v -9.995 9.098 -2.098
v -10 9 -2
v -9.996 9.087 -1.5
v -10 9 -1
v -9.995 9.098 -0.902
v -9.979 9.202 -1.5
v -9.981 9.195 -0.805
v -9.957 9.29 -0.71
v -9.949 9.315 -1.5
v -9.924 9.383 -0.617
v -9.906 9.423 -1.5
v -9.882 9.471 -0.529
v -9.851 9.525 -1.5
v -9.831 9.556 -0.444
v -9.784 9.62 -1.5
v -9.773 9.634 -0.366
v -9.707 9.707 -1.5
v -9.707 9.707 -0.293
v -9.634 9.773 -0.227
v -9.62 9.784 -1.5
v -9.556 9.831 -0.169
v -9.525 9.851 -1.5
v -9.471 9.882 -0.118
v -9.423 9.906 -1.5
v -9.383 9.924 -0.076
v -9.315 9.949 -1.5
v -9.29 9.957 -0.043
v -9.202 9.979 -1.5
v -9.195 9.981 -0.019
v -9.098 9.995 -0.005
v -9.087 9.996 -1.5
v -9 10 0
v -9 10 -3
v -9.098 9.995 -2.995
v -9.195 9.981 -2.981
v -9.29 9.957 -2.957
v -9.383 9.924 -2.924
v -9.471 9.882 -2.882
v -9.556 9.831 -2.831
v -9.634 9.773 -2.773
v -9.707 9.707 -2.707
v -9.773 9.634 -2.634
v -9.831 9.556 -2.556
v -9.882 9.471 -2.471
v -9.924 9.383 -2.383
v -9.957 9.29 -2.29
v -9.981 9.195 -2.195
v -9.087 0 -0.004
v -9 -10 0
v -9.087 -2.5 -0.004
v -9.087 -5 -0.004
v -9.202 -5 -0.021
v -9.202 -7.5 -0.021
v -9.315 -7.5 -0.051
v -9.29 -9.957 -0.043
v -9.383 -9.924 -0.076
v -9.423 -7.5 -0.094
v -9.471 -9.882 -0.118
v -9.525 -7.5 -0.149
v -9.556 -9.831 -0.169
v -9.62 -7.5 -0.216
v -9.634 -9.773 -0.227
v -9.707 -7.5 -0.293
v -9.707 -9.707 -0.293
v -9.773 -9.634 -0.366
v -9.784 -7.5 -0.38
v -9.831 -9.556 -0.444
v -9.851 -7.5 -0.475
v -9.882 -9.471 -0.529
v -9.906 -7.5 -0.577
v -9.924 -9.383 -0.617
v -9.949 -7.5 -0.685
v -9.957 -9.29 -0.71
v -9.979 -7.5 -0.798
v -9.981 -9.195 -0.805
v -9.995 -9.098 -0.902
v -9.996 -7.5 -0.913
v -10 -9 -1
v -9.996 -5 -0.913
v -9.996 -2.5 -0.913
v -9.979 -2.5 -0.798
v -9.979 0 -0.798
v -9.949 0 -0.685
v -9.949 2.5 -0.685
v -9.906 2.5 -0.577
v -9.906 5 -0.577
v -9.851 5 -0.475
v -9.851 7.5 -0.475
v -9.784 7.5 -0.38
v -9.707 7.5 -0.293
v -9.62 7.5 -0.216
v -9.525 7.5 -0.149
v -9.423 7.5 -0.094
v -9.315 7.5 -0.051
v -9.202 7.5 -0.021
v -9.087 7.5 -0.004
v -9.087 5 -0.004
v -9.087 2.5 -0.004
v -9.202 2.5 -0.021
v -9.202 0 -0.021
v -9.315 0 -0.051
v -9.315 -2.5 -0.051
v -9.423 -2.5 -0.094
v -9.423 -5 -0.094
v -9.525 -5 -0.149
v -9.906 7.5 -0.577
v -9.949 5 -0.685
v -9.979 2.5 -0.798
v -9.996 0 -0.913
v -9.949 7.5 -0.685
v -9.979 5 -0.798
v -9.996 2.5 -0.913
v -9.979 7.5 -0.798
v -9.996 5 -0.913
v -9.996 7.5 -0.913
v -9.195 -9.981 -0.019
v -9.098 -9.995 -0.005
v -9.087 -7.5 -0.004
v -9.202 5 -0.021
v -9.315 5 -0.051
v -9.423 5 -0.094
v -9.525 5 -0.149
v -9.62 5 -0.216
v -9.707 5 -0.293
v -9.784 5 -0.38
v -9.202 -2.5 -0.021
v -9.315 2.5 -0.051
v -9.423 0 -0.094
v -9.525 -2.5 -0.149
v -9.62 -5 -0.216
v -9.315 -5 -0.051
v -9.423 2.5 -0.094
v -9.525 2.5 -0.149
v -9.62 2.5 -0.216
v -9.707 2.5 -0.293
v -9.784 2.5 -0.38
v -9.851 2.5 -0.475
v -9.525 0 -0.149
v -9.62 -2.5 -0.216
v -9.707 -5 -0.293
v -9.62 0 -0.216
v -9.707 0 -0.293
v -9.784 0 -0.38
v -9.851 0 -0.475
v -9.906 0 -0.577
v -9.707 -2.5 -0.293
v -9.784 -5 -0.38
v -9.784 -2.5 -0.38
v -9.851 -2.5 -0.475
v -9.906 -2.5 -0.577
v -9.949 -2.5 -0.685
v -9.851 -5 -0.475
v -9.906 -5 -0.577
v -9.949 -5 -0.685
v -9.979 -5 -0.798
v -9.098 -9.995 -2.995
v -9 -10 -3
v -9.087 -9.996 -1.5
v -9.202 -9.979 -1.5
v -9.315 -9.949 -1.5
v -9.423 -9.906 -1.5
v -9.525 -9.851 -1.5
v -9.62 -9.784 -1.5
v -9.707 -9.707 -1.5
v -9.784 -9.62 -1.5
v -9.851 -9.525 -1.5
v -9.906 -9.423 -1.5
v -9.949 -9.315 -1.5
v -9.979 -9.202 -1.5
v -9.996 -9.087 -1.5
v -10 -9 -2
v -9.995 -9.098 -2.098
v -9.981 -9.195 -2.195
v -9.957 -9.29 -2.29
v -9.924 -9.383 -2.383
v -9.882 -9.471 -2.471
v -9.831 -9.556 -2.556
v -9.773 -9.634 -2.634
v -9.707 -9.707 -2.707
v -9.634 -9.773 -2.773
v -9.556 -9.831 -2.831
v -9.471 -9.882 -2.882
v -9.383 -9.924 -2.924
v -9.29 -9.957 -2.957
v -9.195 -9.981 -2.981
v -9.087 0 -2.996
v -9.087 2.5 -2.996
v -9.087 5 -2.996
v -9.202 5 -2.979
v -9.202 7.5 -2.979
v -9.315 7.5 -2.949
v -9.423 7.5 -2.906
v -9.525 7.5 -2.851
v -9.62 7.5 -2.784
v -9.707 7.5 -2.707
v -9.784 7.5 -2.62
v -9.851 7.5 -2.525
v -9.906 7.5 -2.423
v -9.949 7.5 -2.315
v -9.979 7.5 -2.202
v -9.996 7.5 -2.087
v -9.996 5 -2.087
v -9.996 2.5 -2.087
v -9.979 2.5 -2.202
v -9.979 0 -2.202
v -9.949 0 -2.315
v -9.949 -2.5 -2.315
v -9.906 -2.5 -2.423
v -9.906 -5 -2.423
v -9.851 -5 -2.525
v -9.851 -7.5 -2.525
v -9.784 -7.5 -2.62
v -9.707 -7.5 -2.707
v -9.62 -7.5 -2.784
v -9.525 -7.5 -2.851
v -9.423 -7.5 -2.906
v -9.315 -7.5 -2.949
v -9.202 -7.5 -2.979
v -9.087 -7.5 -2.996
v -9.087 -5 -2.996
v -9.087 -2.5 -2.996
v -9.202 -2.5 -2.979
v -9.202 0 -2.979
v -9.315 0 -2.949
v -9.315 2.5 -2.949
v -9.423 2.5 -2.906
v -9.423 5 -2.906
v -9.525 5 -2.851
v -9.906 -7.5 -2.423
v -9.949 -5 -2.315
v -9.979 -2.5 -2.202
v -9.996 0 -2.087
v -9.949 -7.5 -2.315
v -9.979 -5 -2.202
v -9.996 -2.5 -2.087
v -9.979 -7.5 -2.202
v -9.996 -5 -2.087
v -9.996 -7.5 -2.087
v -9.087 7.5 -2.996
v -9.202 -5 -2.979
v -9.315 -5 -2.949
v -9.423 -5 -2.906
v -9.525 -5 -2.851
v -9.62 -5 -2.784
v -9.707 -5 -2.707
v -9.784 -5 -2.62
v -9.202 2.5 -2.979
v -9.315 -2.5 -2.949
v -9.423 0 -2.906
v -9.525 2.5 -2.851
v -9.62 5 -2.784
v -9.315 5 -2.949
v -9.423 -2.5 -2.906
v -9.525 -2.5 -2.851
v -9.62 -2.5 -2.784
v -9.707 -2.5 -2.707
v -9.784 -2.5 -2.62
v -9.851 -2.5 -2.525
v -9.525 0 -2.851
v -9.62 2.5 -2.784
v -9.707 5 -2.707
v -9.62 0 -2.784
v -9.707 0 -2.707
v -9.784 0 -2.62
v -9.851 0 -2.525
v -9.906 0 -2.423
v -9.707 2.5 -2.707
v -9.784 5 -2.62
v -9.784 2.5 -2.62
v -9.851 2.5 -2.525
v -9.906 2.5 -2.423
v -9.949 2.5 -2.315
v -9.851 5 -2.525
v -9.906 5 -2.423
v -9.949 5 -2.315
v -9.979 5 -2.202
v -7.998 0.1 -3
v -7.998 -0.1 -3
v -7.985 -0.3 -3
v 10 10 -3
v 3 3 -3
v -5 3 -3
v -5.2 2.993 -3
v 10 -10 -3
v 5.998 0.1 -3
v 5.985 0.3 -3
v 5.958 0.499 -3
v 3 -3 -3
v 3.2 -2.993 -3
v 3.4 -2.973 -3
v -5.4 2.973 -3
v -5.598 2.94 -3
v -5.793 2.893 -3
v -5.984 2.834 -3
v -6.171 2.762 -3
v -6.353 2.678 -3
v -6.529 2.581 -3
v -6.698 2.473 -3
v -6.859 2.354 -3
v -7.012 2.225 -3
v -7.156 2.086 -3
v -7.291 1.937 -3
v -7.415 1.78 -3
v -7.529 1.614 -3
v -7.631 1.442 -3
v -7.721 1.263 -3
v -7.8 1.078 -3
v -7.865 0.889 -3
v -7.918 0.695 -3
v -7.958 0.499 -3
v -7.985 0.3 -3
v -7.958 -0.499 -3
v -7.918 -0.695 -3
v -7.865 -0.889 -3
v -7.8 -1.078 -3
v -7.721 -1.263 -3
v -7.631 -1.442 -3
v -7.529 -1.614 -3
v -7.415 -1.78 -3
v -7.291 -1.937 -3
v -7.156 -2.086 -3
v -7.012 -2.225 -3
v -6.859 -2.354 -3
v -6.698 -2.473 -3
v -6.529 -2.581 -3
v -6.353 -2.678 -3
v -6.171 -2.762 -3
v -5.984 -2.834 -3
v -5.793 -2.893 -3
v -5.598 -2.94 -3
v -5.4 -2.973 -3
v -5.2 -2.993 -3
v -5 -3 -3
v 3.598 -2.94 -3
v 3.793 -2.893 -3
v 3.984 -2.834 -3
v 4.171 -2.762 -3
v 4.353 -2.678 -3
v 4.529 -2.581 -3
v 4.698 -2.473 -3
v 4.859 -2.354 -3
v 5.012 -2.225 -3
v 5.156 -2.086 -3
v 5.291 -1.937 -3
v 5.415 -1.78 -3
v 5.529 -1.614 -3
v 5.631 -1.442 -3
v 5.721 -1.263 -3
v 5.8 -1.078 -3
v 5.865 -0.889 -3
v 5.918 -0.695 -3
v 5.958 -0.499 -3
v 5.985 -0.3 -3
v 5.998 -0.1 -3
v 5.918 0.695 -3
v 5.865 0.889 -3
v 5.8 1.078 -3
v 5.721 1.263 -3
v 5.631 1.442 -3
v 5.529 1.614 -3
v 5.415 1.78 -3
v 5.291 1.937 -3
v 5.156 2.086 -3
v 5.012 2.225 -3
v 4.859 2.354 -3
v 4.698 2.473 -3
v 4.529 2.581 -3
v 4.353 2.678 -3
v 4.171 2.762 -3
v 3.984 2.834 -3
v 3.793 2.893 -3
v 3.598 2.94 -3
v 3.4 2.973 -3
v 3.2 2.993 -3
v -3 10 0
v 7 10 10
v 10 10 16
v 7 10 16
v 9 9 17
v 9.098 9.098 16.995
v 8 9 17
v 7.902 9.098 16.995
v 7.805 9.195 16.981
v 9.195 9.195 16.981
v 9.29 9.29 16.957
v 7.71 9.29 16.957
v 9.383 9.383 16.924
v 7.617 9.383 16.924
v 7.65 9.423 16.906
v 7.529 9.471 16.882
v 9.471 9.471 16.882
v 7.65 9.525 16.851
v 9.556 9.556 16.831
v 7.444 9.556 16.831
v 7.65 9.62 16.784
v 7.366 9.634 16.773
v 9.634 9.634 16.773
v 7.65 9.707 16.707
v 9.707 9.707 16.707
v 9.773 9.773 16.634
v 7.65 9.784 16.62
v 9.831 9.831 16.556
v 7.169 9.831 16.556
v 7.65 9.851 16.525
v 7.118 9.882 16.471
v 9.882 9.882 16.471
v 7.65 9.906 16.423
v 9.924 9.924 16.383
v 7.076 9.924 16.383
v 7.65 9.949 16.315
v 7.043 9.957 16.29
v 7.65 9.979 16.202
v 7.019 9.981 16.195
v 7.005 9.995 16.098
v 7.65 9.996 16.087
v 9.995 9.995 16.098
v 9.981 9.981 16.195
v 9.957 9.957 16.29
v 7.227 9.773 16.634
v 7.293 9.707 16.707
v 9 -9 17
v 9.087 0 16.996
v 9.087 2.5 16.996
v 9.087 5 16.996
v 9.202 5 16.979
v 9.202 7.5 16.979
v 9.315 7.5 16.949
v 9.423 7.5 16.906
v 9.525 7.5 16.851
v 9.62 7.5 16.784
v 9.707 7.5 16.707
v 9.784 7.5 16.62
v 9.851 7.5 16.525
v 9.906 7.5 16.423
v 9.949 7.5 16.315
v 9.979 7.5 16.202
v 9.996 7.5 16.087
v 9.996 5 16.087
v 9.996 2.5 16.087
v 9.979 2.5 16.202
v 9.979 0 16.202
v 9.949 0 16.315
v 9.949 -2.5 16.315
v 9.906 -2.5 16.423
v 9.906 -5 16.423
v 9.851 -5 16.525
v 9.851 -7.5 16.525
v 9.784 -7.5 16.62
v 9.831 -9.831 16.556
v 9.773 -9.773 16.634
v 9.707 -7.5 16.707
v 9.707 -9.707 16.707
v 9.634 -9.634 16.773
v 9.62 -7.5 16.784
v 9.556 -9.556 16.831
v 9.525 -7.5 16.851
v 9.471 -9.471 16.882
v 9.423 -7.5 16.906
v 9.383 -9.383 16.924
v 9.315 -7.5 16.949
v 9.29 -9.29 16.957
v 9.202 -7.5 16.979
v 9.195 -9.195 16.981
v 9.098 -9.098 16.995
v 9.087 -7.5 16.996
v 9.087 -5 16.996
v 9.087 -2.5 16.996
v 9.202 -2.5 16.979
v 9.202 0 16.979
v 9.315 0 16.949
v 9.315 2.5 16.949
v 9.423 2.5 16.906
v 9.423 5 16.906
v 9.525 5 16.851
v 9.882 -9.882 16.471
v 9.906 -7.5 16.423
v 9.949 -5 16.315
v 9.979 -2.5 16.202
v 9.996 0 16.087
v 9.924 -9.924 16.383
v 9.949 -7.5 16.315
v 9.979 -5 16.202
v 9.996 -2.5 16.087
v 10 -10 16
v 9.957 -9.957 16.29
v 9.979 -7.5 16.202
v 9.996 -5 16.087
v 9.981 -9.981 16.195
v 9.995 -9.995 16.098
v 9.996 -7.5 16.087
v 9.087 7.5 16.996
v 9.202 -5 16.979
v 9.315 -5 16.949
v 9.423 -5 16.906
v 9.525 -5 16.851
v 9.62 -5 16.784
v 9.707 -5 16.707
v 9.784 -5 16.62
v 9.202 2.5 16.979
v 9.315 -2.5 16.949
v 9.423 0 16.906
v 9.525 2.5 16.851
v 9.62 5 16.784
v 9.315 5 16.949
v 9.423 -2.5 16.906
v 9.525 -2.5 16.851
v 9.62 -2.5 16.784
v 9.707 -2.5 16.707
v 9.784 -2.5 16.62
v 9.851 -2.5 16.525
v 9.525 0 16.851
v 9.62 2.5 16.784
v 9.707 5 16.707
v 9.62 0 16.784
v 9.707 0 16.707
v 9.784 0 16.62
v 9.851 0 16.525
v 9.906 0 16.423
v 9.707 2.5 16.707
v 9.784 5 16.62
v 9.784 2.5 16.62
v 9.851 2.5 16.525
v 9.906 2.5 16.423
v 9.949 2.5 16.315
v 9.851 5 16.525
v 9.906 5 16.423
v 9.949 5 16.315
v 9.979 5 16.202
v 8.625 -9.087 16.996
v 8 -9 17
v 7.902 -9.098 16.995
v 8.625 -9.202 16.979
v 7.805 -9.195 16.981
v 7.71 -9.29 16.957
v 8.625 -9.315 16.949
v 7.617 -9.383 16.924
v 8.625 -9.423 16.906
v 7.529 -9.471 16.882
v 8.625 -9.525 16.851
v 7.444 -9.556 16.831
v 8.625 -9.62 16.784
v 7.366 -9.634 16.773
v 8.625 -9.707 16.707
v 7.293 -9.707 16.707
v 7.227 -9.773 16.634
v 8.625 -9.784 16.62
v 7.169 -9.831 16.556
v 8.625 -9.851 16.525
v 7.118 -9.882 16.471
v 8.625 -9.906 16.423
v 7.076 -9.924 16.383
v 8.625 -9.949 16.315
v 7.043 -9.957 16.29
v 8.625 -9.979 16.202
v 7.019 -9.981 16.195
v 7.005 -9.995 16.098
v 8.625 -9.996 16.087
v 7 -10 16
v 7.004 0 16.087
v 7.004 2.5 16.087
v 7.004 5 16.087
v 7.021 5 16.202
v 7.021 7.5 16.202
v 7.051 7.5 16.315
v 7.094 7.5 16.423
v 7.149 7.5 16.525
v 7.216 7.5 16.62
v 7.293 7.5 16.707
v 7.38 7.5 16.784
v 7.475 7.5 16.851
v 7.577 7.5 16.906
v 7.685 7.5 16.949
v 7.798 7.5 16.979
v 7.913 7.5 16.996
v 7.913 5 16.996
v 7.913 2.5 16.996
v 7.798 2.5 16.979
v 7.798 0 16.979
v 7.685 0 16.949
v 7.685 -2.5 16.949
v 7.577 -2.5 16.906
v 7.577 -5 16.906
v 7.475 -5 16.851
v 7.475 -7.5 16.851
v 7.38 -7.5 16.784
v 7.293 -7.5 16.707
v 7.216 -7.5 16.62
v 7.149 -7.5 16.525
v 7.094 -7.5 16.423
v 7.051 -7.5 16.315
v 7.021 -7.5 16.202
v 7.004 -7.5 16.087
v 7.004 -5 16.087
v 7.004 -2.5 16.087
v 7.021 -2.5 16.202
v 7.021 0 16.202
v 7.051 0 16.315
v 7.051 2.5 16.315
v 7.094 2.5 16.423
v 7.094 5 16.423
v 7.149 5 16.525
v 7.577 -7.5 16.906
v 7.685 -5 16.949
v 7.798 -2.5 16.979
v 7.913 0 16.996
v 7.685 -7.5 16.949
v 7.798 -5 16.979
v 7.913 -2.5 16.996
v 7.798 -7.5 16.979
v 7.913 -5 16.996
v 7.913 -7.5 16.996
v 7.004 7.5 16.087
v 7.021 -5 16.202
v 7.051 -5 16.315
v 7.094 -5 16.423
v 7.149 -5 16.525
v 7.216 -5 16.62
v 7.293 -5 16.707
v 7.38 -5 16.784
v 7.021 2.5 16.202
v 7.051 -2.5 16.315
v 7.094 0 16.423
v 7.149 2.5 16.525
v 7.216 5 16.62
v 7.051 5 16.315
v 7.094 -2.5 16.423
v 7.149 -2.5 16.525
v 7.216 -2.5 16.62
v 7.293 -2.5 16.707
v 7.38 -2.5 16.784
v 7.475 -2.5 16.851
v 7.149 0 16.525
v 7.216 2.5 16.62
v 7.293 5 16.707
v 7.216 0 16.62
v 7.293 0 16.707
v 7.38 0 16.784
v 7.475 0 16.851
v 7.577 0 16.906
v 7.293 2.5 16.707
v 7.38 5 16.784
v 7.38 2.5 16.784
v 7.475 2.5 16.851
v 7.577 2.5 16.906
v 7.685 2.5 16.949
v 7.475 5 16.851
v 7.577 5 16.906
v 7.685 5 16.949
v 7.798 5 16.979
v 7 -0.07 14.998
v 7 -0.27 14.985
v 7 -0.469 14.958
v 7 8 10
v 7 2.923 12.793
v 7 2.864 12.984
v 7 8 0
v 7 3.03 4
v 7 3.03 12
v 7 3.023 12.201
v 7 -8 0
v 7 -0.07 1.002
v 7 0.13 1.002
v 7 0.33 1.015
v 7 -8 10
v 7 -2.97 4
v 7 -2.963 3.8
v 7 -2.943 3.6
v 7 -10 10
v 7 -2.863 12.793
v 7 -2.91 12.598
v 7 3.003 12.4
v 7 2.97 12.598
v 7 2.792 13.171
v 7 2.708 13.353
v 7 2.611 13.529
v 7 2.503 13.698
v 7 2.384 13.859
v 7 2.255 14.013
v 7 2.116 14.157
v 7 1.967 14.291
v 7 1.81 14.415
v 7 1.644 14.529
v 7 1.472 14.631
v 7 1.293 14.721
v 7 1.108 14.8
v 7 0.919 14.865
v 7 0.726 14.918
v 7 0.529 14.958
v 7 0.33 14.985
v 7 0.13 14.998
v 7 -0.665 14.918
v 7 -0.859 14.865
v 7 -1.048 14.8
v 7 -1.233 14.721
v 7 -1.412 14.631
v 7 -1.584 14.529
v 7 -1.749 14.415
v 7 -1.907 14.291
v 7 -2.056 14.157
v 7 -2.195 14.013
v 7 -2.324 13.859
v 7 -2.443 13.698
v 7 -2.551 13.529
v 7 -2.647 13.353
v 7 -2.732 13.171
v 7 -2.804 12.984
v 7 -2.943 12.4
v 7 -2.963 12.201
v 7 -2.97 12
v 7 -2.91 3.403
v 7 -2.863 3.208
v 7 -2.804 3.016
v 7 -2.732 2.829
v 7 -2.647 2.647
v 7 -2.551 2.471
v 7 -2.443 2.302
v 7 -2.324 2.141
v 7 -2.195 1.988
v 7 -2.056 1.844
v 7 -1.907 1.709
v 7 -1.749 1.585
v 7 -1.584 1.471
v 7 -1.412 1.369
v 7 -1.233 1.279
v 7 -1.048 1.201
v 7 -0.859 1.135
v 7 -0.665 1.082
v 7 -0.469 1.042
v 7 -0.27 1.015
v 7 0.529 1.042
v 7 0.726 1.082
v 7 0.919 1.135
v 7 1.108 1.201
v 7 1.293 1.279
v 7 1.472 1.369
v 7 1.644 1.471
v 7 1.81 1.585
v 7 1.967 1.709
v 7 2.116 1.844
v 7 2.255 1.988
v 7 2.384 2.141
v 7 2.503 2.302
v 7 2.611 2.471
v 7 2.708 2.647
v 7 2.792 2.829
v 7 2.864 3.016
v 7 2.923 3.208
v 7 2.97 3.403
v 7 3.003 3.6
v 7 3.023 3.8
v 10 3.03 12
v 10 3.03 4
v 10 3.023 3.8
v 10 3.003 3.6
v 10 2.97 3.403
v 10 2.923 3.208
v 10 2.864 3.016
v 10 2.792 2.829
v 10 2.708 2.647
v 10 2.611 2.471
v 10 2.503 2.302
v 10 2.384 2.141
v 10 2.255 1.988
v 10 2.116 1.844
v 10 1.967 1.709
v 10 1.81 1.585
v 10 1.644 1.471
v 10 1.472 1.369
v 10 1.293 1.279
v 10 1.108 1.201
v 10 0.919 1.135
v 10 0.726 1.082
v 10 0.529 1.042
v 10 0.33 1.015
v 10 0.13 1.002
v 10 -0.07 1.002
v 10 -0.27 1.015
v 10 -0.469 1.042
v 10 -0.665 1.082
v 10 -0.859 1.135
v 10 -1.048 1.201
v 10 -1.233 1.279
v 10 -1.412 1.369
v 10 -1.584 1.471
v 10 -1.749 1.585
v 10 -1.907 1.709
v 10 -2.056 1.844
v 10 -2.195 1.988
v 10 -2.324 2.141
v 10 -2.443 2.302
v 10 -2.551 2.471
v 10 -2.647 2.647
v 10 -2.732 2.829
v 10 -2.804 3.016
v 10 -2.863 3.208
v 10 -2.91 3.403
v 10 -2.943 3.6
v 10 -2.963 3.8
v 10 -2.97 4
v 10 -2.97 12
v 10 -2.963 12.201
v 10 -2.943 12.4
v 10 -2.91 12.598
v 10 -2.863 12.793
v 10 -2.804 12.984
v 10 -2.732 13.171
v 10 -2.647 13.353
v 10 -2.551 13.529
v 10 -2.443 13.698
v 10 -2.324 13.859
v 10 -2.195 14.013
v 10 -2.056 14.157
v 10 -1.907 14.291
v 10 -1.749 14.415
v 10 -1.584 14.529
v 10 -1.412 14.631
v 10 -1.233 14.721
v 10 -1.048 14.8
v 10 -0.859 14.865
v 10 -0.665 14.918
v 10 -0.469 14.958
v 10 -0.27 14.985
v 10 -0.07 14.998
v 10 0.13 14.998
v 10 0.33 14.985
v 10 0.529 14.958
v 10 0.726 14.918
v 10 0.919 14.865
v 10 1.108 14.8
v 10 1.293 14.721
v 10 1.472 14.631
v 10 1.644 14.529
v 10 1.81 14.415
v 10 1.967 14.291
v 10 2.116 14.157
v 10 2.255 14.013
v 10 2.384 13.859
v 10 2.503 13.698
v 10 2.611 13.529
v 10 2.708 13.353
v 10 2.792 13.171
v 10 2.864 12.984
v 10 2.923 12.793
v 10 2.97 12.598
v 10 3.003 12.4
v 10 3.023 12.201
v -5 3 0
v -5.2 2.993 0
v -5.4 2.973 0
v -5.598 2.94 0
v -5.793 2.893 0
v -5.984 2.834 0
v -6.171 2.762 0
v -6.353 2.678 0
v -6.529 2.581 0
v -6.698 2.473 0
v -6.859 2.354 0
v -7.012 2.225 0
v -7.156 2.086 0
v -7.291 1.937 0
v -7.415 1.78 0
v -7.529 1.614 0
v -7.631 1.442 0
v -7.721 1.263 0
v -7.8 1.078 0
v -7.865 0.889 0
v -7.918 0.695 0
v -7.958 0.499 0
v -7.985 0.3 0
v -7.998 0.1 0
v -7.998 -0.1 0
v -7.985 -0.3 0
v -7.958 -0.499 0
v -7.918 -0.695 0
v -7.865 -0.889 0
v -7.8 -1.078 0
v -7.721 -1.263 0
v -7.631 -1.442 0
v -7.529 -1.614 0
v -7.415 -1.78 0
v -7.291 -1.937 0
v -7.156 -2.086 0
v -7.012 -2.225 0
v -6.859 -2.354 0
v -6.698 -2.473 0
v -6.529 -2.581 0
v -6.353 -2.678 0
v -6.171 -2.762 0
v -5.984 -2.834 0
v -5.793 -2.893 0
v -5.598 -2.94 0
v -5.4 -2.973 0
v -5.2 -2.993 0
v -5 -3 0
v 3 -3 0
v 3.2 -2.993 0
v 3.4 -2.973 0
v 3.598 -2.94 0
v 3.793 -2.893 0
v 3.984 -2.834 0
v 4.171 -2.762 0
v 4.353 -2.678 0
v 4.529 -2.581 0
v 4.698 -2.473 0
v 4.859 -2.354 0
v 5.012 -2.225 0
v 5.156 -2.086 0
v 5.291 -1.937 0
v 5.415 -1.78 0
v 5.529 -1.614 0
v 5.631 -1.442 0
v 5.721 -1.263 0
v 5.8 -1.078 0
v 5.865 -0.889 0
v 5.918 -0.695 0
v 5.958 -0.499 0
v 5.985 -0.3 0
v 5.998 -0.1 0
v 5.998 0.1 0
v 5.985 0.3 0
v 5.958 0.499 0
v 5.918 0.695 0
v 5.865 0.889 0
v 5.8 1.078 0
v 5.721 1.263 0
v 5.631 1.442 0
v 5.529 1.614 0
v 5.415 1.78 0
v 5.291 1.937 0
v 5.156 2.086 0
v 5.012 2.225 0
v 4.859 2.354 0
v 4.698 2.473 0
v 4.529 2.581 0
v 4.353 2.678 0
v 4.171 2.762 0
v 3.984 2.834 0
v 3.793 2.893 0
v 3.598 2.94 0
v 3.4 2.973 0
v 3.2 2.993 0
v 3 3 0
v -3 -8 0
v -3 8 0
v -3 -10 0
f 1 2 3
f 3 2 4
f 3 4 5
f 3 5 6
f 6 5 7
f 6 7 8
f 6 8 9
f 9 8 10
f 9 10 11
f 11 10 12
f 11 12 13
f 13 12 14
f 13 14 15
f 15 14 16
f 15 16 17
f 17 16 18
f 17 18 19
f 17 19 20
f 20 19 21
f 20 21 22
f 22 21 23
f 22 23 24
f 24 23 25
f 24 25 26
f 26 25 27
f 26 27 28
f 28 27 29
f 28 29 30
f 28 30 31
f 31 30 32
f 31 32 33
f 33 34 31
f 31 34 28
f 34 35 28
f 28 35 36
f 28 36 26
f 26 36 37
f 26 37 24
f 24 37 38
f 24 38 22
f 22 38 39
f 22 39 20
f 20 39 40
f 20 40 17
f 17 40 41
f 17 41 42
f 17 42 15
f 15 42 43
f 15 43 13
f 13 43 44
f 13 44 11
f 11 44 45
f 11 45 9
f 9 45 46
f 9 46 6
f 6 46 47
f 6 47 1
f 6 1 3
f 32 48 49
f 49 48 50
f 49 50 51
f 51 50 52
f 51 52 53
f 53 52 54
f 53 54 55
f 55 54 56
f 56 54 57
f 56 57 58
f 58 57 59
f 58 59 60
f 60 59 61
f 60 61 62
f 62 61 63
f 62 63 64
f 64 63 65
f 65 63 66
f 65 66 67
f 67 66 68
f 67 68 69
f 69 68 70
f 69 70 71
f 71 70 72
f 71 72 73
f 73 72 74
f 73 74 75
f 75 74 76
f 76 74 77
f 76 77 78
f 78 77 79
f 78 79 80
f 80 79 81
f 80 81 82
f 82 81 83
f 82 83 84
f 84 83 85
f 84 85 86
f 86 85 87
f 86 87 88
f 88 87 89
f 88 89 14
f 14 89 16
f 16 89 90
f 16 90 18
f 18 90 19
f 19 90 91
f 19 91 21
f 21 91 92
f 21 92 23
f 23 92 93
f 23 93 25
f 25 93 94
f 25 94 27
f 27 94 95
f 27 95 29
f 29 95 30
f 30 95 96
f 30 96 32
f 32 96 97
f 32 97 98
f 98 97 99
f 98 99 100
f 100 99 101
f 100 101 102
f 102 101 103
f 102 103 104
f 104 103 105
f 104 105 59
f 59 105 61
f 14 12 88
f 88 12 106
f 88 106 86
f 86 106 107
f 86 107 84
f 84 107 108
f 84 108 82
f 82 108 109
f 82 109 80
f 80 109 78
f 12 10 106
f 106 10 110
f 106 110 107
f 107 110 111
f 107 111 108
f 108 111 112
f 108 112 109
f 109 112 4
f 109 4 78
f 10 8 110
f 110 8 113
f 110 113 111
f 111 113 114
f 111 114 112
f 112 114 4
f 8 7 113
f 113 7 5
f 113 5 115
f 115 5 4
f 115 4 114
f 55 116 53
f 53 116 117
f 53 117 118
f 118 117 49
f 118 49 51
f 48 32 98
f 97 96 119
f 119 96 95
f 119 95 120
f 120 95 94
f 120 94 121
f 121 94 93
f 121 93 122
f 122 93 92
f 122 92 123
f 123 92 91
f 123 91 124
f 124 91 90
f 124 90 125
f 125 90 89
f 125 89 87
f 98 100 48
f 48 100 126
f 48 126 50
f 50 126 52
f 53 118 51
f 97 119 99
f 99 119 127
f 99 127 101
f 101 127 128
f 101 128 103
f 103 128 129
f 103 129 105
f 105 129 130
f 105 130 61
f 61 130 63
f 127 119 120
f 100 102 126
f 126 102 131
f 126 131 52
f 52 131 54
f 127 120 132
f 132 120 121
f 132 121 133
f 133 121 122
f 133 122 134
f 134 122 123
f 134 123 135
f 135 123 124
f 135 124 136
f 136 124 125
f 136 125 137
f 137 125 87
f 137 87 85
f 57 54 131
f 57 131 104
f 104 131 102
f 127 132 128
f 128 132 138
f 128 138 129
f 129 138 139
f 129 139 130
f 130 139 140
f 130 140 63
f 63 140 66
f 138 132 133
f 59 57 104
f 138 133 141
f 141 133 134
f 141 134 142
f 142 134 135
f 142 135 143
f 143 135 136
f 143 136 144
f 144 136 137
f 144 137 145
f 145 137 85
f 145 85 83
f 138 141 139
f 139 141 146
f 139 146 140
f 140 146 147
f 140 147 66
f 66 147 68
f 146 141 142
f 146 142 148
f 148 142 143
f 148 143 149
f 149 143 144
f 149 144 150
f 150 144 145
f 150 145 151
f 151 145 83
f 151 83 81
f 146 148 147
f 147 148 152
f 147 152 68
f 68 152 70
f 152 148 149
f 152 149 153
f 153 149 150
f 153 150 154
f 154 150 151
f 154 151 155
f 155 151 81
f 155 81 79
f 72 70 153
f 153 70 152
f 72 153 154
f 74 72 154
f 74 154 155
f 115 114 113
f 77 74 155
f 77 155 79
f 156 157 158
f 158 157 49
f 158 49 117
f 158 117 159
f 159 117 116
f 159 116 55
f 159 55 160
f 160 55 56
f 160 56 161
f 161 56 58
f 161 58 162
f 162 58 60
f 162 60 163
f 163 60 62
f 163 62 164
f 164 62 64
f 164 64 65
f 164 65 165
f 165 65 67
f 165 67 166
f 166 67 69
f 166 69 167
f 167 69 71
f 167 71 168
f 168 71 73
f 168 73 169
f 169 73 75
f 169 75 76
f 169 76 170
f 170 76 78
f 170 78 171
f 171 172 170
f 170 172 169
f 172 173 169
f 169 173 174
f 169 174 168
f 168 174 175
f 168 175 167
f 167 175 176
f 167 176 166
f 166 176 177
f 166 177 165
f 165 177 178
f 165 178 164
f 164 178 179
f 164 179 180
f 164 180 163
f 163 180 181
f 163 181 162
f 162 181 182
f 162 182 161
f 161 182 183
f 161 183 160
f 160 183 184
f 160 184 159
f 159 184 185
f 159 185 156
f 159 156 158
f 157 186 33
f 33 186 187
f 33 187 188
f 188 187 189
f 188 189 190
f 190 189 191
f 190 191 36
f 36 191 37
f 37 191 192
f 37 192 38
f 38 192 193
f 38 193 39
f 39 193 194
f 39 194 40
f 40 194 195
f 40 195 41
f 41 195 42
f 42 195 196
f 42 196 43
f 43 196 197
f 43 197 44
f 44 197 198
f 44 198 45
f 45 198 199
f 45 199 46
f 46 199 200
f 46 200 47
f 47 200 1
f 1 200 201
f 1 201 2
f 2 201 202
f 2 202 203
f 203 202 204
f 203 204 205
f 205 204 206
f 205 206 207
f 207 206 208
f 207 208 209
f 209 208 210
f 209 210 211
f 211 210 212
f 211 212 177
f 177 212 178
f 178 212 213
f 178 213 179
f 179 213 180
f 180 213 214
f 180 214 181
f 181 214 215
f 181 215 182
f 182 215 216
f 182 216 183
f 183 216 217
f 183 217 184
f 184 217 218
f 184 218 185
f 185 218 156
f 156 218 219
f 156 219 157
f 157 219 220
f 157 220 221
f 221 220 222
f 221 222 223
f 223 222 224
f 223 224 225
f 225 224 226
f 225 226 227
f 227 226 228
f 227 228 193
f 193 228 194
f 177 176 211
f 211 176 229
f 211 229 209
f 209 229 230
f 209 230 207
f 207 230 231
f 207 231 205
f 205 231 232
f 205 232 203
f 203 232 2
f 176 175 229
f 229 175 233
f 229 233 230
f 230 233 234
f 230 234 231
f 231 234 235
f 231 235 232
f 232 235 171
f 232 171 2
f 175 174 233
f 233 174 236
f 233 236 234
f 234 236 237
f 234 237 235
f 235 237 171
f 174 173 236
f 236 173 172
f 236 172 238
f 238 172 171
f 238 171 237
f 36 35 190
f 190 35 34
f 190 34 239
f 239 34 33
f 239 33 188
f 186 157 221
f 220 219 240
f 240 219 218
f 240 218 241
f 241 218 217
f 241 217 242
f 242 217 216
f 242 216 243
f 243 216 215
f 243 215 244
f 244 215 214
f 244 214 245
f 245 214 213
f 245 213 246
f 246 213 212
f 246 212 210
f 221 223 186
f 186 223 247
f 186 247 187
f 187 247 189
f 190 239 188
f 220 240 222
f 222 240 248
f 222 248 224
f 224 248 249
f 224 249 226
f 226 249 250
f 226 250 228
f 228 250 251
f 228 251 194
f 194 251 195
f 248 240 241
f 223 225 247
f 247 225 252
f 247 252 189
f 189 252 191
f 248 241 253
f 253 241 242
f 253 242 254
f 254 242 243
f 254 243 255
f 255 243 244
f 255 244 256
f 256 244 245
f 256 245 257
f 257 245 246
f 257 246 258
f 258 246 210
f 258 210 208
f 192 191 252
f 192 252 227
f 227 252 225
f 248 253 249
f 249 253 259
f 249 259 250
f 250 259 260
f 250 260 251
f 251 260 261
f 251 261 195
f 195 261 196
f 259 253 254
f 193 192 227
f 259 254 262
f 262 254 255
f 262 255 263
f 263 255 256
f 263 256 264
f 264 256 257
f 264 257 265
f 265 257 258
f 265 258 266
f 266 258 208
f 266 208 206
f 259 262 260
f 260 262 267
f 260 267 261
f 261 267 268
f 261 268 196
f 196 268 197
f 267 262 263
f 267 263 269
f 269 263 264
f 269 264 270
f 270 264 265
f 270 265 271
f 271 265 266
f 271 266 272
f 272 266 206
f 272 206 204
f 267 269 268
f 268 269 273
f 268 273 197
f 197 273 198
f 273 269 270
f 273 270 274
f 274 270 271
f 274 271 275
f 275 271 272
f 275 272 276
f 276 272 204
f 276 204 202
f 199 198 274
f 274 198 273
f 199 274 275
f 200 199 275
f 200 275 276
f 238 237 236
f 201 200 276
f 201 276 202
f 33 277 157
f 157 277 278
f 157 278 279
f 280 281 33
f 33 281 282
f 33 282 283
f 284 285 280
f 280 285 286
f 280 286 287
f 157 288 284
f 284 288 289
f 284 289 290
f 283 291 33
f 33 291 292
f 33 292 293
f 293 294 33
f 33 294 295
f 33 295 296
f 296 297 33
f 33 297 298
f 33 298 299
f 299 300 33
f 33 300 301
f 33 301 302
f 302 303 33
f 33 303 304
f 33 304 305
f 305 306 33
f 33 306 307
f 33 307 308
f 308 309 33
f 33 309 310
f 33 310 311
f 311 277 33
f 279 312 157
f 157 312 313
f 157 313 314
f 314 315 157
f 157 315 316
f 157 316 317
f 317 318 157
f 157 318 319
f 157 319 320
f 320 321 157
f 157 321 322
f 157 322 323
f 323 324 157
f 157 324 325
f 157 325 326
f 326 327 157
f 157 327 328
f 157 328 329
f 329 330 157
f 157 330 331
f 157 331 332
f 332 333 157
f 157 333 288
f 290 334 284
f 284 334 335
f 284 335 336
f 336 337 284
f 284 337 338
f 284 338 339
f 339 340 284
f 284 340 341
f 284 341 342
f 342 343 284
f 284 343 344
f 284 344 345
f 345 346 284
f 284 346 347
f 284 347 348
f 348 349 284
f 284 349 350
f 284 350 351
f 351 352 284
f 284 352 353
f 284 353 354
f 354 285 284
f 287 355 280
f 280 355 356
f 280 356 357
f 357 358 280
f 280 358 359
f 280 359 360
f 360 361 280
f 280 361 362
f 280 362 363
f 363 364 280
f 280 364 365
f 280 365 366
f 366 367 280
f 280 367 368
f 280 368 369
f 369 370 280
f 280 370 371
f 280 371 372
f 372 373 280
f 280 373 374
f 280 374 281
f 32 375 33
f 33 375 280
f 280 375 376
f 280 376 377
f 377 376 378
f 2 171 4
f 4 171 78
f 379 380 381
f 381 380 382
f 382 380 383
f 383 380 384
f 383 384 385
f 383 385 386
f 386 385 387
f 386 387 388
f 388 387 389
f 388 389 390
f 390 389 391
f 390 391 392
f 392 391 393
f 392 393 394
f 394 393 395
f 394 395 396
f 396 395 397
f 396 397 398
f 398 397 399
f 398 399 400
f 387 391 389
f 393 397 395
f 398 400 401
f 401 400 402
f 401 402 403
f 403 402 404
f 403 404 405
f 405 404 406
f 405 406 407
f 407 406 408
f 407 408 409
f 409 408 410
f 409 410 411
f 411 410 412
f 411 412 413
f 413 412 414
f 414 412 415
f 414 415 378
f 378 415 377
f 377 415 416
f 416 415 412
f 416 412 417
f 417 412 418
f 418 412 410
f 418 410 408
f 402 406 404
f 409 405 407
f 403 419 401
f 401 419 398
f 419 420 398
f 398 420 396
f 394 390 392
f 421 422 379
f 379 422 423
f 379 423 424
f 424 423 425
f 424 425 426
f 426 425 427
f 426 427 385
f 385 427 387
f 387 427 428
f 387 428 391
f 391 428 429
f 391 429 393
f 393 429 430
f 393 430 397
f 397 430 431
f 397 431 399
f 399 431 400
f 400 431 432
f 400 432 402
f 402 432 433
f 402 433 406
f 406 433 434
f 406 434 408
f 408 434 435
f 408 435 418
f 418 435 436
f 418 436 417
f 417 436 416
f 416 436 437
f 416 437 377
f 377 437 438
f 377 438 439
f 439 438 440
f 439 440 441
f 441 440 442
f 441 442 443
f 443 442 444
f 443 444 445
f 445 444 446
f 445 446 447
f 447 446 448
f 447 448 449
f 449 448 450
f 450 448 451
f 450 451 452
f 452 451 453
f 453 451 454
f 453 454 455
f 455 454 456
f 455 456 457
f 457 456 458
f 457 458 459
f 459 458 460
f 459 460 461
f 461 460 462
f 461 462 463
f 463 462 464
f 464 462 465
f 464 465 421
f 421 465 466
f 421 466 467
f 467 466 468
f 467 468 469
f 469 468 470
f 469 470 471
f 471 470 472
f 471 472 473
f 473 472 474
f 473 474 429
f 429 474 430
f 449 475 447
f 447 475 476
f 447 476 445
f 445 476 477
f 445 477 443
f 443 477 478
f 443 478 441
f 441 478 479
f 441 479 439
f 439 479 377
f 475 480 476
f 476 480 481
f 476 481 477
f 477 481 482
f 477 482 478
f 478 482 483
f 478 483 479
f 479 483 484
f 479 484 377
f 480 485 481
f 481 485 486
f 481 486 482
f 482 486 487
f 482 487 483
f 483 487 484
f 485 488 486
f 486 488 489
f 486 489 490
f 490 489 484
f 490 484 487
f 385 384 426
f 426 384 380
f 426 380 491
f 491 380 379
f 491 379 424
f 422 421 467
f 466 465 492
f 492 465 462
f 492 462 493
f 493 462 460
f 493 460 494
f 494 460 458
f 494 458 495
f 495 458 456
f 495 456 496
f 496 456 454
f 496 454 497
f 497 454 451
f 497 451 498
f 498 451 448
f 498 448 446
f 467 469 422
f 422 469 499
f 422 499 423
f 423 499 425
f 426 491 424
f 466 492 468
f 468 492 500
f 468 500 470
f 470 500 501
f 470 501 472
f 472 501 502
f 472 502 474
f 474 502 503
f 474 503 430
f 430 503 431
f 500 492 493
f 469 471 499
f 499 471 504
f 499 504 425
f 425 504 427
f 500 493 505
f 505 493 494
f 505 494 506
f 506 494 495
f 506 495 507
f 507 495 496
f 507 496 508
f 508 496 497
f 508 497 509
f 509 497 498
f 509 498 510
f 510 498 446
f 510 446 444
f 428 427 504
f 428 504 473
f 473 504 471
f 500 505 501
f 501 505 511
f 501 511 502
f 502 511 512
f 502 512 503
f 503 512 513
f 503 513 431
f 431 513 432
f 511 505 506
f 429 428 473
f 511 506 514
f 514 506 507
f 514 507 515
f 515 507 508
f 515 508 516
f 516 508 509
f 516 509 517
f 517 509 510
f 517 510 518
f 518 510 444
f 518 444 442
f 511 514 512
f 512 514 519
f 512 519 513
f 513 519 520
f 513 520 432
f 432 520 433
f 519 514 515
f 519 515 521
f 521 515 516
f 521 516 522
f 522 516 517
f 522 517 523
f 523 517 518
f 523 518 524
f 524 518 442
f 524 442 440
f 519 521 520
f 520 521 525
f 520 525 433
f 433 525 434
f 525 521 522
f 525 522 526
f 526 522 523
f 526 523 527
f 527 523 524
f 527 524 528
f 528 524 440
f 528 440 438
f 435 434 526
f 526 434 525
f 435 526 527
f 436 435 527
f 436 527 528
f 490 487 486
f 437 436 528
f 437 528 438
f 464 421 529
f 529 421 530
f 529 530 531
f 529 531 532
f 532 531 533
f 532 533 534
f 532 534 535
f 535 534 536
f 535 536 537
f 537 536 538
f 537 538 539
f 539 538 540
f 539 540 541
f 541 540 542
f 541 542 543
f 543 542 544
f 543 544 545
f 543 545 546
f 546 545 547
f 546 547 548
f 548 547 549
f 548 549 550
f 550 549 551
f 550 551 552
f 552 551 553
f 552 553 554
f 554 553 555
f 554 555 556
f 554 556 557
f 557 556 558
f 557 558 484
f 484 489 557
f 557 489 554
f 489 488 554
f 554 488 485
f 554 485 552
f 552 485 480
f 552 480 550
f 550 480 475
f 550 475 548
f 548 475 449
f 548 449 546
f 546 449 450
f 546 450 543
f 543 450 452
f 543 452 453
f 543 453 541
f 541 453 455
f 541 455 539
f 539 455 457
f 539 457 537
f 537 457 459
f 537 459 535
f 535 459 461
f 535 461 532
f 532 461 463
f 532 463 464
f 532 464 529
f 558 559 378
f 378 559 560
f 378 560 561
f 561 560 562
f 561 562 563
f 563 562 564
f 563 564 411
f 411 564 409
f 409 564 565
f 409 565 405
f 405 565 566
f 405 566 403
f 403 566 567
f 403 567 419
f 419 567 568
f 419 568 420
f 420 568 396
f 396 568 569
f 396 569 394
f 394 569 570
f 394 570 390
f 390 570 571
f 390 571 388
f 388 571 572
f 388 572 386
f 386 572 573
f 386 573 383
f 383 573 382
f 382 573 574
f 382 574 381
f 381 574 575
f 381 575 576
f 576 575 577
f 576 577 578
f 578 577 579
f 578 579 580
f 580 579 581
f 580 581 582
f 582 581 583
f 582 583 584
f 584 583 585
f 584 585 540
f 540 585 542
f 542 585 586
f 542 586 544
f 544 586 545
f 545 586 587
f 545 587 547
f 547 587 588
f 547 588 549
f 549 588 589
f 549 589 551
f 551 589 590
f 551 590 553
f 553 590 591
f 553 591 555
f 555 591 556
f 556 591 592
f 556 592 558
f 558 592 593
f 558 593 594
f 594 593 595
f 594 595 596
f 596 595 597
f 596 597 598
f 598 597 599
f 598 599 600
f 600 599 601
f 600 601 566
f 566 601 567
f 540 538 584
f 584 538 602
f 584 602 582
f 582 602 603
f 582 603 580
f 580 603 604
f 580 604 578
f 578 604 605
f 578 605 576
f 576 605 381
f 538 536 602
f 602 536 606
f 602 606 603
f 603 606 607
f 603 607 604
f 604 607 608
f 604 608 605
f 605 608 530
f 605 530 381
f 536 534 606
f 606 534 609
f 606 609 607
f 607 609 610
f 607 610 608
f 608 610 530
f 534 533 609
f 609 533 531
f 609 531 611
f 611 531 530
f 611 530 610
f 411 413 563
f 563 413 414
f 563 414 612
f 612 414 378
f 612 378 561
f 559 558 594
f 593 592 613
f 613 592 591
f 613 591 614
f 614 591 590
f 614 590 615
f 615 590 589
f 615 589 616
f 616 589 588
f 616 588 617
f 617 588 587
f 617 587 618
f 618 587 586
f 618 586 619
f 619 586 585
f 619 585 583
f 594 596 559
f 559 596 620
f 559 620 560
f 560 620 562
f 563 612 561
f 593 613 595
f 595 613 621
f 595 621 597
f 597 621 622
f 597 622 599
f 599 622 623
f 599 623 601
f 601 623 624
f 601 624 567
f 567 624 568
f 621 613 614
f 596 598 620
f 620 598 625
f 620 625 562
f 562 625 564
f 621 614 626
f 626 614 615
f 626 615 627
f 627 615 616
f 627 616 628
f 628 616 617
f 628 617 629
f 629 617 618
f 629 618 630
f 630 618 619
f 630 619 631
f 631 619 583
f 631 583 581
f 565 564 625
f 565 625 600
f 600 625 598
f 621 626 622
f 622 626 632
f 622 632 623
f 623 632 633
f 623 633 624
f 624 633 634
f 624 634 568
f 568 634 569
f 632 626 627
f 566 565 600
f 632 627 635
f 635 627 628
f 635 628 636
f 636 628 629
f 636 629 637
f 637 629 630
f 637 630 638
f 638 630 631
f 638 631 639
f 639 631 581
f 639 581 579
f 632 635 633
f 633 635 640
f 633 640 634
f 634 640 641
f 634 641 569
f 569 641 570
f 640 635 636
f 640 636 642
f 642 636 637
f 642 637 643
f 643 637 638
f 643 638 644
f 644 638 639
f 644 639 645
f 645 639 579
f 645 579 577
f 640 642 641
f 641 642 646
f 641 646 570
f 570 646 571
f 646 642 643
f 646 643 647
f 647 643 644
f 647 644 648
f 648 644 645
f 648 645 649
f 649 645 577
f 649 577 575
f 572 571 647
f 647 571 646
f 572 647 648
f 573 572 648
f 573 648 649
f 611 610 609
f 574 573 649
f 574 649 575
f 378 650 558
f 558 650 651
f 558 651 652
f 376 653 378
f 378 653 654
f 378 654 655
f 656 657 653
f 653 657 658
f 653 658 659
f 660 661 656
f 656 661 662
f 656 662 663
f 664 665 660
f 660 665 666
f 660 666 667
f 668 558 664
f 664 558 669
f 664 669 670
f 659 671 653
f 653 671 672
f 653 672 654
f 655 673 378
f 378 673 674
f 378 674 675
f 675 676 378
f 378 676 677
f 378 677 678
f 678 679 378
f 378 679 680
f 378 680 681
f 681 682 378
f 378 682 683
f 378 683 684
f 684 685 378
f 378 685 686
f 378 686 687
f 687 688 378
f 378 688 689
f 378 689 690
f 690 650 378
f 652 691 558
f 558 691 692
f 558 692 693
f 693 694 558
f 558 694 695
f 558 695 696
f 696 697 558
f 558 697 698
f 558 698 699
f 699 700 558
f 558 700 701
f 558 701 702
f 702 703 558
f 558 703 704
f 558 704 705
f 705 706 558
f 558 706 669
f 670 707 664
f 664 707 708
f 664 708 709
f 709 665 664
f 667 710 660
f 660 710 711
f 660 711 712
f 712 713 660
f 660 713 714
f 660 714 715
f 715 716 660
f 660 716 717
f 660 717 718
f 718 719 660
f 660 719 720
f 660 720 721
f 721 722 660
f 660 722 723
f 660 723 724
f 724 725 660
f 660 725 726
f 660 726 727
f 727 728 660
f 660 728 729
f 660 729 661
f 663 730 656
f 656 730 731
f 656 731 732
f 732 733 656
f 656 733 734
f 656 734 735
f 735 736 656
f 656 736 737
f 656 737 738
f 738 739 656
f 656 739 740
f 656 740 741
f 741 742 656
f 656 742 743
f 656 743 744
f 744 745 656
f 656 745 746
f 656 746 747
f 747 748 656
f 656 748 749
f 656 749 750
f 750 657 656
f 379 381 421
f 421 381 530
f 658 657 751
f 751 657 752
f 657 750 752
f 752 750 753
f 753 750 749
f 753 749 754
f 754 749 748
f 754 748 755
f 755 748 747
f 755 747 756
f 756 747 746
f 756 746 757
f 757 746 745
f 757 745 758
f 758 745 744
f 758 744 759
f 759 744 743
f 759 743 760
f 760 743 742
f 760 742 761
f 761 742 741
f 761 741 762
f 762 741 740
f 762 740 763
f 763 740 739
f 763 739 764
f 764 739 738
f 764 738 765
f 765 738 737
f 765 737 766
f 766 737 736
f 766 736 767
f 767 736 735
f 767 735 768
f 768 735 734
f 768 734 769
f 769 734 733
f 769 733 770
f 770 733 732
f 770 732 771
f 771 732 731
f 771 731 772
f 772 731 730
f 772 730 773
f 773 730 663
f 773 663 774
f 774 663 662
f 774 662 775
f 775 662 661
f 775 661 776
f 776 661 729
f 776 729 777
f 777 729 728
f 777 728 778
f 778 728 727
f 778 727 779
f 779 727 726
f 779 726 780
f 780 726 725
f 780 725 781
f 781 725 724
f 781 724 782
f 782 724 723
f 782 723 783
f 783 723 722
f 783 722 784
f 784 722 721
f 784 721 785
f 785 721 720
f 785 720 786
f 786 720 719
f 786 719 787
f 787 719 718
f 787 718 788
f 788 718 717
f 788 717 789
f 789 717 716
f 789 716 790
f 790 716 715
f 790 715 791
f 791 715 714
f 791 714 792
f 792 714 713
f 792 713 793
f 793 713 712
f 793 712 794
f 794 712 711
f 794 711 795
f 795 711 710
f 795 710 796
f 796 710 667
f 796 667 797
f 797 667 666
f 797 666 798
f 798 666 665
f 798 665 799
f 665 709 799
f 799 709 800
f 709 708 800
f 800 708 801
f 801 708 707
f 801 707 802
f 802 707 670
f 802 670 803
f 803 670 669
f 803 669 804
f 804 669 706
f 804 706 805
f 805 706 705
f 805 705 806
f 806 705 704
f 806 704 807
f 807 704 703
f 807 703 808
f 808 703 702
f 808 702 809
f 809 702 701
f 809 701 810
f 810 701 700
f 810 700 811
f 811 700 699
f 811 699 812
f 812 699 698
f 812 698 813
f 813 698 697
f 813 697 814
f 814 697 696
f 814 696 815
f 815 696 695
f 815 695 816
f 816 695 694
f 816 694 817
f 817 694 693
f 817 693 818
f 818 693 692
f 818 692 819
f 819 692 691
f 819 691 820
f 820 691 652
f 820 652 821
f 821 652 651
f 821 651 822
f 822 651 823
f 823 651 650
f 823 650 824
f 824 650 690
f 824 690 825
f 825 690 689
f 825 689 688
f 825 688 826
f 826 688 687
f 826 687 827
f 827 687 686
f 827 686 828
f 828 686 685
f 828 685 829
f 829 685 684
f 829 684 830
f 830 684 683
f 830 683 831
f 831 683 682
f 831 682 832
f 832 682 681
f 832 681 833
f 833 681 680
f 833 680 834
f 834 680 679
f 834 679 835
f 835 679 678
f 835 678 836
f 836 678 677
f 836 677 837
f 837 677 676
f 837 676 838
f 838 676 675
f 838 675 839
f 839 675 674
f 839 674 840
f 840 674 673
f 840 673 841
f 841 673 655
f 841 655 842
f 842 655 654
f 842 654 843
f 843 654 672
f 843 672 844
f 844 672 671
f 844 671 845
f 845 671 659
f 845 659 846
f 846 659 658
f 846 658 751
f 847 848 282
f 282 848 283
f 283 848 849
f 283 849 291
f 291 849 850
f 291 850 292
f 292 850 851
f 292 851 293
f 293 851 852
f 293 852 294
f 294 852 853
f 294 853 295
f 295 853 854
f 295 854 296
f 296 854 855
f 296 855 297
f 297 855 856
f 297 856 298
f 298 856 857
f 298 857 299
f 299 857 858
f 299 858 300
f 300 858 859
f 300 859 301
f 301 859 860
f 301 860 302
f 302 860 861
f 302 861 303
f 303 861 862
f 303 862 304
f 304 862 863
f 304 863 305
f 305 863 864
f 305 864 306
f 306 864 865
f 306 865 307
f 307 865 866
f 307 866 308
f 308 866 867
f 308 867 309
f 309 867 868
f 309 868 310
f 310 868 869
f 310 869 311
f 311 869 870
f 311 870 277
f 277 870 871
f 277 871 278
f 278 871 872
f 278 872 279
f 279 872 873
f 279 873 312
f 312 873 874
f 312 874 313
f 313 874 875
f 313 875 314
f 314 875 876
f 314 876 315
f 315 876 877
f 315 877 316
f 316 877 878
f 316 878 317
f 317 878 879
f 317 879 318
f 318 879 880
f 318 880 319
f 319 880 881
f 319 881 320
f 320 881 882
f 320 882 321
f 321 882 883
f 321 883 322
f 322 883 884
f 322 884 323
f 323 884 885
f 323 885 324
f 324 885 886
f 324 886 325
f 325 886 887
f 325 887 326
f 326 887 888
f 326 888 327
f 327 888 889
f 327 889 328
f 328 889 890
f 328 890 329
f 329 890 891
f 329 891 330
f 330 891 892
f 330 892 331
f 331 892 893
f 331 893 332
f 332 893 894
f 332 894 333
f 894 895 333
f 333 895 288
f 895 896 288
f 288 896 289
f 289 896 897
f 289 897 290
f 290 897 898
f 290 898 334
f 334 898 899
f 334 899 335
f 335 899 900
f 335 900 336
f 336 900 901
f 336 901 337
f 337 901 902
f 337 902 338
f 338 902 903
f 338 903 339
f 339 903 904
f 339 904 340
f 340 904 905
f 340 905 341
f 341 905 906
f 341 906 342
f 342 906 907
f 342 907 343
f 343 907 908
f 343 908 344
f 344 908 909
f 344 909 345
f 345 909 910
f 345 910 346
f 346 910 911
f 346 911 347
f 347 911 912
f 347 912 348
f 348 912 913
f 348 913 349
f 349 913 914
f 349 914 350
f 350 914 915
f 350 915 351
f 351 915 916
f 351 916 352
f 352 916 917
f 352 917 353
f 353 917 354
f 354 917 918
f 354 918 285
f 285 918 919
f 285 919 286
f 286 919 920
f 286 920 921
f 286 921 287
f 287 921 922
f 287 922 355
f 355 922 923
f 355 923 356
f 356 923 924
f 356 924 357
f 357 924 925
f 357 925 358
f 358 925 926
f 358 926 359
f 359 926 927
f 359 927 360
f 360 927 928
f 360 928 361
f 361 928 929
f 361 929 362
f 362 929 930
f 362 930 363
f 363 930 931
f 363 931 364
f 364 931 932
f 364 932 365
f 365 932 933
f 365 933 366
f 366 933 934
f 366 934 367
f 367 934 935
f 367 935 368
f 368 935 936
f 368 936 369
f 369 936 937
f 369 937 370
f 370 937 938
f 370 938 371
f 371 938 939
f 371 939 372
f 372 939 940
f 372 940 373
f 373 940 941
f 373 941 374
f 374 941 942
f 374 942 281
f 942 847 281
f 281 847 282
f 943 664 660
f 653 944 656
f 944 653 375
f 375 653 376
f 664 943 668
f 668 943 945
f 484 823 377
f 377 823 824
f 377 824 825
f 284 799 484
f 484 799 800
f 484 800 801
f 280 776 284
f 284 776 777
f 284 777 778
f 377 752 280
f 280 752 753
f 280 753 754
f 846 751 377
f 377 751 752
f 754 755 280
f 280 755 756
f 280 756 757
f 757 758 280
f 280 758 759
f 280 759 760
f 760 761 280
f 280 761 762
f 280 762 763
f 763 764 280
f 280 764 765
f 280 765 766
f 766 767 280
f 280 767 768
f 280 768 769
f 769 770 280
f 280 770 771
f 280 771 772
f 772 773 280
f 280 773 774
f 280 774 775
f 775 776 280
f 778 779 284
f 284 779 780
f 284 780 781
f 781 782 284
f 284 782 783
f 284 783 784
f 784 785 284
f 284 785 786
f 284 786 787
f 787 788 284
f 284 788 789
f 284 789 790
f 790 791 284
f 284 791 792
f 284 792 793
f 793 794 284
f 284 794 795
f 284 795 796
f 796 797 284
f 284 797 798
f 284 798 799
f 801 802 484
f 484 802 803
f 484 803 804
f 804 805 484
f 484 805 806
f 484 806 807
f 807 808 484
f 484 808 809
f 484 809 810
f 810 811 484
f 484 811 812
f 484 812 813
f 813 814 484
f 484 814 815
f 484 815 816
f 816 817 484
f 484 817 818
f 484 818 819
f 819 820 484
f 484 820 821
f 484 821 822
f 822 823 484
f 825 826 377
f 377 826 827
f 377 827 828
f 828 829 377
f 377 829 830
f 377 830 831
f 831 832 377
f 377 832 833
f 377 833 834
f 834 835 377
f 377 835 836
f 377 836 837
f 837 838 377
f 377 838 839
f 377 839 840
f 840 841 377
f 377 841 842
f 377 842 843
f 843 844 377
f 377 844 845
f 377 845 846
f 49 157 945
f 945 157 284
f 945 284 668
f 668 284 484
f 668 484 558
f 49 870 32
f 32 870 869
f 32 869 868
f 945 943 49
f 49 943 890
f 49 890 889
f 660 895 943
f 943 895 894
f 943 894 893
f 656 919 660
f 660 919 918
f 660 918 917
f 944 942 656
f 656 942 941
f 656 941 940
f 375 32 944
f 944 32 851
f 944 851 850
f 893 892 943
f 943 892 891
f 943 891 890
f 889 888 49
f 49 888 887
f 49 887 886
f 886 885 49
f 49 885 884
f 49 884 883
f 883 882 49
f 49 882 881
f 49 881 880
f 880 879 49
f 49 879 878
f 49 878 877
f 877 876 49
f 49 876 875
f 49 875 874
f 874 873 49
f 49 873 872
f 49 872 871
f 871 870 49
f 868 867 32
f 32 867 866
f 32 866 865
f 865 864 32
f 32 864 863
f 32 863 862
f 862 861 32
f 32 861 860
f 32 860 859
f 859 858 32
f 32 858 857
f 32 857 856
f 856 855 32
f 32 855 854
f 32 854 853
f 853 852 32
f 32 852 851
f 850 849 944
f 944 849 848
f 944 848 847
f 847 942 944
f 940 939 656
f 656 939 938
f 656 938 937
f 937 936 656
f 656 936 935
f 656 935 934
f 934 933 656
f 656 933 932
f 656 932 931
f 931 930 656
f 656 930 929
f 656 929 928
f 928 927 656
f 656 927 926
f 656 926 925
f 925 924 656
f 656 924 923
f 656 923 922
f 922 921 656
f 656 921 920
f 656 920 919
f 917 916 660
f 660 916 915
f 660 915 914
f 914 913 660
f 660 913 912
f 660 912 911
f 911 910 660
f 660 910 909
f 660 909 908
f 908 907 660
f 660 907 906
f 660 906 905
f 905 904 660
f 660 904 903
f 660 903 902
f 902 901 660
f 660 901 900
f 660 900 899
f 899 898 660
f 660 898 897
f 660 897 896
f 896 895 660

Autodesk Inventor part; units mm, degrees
ref_plane "YZ Plane" through (0, 0, 0) normal (1, 0, 0) x (0, 1, 0)
ref_plane "XZ Plane" through (0, 0, 0) normal (0, 1, 0) x (-1, 0, 0)
ref_plane "XY Plane" through (0, 0, 0) normal (0, 0, 1) x (1, 0, 0)
sketch "Sketch1" plane through (0, 0, 0) normal (0, 0, 1) x (1, 0, 0)
  line L0 (-10, -10) -> (10, -10)
  line L1 (10, -10) -> (10, 10)
  line L2 (10, 10) -> (-10, 10)
  line L3 (-10, 10) -> (-10, -10)
  line L4 (-10, -10) -> (10, 10) construction
  line L5 (10, -10) -> (-10, 10) construction
  line L6 (7, 10) -> (7, -10)
  circle A0 centre (3, 0) radius 3
  circle A1 centre (-5, 0) radius 3
  line L7 (-5, 3) -> (3, 3)
  line L8 (-5, -3) -> (3, -3)
  line L9 (10, -10) -> (10, 17.1252) construction
  line L10 (7, 8) -> (-10, 8)
  line L11 (7, -8) -> (-10, -8)
  point P0 (0, 0)
  dimension "d0" = 20
  dimension "d1" = 20
  dimension "d2" = 3
  dimension "d3" = 6
  dimension "d4" = 4
  dimension "d5" = 6
  dimension "d6" = 5
  dimension "d16" = 2
  dimension "d17" = 2
extrude "Extrusion1" add sketch "Sketch1" against normal blind 3 contours L3 L11 L6 L0 | L6 L2 L1 L0 | L3 L10 L6 L11 | L3 L2 L6 L10 | A0 | A0 L8 A1 L7 | A1
extrude "Extrusion2" add sketch "Sketch1" along normal blind 17 contours L6 L2 L1 L0
sketch "Sketch2" plane through (-10, -10, -3) normal (0, -1, 0) x (1, 0, 0)
  line L0 (0, 3) -> (17, 3) projected
  line L1 (17, 3) -> (7, 3)
  line L2 (17, 3) -> (17, 20) projected
  line L3 (17, 13) -> (17, 3)
  line L4 (17, 13) -> (7, 3)
  point P0 (10, 3)
  dimension "d11" = 10
  dimension "d13" = 10
extrude "Extrusion3" add sketch "Sketch2" against normal blind 20
extrude "Extrusion4" cut sketch "Sketch1" along normal blind 20 contours L3 L10 L6 L11 | A0 | A0 L8 A1 L7 | A1
sketch "Sketch3" plane through (7, -10, 17) normal (-1, 0, 0) x (0, 0, 1)
  circle A0 centre (-4.9998, 10.0301) radius 3
  circle A1 centre (-12.9998, 10.0301) radius 3
  line L0 (-12.9998, 13.0301) -> (-4.9998, 13.0301)
  line L1 (-12.9998, 7.0301) -> (-4.9998, 7.0301)
  line L2 (0, 20) -> (0, 0) projected
  line L3 (0, 10) -> (-2, 10) construction
  point P0 (-17, 10)
  dimension "d20" = 6
  dimension "d21" = 6
  dimension "d22" = 2
extrude "Extrusion5" cut sketch "Sketch1" against normal blind 3 contours A0 | A0 L8 A1 L7 | A1
extrude "Extrusion6" cut sketch "Sketch3" against normal blind 3
fillet "Fillet1" radius 1 8 edges at (8.5, -10, 17) (8.5, 10, 17) (7, 0, 17) (10, 0, 17) (-10, 0, 0) (-10, 0, -3) (-10, 10, -1.5) (-10, -10, -1.5)
properties part number "grid_board_8020_corner_mount"
